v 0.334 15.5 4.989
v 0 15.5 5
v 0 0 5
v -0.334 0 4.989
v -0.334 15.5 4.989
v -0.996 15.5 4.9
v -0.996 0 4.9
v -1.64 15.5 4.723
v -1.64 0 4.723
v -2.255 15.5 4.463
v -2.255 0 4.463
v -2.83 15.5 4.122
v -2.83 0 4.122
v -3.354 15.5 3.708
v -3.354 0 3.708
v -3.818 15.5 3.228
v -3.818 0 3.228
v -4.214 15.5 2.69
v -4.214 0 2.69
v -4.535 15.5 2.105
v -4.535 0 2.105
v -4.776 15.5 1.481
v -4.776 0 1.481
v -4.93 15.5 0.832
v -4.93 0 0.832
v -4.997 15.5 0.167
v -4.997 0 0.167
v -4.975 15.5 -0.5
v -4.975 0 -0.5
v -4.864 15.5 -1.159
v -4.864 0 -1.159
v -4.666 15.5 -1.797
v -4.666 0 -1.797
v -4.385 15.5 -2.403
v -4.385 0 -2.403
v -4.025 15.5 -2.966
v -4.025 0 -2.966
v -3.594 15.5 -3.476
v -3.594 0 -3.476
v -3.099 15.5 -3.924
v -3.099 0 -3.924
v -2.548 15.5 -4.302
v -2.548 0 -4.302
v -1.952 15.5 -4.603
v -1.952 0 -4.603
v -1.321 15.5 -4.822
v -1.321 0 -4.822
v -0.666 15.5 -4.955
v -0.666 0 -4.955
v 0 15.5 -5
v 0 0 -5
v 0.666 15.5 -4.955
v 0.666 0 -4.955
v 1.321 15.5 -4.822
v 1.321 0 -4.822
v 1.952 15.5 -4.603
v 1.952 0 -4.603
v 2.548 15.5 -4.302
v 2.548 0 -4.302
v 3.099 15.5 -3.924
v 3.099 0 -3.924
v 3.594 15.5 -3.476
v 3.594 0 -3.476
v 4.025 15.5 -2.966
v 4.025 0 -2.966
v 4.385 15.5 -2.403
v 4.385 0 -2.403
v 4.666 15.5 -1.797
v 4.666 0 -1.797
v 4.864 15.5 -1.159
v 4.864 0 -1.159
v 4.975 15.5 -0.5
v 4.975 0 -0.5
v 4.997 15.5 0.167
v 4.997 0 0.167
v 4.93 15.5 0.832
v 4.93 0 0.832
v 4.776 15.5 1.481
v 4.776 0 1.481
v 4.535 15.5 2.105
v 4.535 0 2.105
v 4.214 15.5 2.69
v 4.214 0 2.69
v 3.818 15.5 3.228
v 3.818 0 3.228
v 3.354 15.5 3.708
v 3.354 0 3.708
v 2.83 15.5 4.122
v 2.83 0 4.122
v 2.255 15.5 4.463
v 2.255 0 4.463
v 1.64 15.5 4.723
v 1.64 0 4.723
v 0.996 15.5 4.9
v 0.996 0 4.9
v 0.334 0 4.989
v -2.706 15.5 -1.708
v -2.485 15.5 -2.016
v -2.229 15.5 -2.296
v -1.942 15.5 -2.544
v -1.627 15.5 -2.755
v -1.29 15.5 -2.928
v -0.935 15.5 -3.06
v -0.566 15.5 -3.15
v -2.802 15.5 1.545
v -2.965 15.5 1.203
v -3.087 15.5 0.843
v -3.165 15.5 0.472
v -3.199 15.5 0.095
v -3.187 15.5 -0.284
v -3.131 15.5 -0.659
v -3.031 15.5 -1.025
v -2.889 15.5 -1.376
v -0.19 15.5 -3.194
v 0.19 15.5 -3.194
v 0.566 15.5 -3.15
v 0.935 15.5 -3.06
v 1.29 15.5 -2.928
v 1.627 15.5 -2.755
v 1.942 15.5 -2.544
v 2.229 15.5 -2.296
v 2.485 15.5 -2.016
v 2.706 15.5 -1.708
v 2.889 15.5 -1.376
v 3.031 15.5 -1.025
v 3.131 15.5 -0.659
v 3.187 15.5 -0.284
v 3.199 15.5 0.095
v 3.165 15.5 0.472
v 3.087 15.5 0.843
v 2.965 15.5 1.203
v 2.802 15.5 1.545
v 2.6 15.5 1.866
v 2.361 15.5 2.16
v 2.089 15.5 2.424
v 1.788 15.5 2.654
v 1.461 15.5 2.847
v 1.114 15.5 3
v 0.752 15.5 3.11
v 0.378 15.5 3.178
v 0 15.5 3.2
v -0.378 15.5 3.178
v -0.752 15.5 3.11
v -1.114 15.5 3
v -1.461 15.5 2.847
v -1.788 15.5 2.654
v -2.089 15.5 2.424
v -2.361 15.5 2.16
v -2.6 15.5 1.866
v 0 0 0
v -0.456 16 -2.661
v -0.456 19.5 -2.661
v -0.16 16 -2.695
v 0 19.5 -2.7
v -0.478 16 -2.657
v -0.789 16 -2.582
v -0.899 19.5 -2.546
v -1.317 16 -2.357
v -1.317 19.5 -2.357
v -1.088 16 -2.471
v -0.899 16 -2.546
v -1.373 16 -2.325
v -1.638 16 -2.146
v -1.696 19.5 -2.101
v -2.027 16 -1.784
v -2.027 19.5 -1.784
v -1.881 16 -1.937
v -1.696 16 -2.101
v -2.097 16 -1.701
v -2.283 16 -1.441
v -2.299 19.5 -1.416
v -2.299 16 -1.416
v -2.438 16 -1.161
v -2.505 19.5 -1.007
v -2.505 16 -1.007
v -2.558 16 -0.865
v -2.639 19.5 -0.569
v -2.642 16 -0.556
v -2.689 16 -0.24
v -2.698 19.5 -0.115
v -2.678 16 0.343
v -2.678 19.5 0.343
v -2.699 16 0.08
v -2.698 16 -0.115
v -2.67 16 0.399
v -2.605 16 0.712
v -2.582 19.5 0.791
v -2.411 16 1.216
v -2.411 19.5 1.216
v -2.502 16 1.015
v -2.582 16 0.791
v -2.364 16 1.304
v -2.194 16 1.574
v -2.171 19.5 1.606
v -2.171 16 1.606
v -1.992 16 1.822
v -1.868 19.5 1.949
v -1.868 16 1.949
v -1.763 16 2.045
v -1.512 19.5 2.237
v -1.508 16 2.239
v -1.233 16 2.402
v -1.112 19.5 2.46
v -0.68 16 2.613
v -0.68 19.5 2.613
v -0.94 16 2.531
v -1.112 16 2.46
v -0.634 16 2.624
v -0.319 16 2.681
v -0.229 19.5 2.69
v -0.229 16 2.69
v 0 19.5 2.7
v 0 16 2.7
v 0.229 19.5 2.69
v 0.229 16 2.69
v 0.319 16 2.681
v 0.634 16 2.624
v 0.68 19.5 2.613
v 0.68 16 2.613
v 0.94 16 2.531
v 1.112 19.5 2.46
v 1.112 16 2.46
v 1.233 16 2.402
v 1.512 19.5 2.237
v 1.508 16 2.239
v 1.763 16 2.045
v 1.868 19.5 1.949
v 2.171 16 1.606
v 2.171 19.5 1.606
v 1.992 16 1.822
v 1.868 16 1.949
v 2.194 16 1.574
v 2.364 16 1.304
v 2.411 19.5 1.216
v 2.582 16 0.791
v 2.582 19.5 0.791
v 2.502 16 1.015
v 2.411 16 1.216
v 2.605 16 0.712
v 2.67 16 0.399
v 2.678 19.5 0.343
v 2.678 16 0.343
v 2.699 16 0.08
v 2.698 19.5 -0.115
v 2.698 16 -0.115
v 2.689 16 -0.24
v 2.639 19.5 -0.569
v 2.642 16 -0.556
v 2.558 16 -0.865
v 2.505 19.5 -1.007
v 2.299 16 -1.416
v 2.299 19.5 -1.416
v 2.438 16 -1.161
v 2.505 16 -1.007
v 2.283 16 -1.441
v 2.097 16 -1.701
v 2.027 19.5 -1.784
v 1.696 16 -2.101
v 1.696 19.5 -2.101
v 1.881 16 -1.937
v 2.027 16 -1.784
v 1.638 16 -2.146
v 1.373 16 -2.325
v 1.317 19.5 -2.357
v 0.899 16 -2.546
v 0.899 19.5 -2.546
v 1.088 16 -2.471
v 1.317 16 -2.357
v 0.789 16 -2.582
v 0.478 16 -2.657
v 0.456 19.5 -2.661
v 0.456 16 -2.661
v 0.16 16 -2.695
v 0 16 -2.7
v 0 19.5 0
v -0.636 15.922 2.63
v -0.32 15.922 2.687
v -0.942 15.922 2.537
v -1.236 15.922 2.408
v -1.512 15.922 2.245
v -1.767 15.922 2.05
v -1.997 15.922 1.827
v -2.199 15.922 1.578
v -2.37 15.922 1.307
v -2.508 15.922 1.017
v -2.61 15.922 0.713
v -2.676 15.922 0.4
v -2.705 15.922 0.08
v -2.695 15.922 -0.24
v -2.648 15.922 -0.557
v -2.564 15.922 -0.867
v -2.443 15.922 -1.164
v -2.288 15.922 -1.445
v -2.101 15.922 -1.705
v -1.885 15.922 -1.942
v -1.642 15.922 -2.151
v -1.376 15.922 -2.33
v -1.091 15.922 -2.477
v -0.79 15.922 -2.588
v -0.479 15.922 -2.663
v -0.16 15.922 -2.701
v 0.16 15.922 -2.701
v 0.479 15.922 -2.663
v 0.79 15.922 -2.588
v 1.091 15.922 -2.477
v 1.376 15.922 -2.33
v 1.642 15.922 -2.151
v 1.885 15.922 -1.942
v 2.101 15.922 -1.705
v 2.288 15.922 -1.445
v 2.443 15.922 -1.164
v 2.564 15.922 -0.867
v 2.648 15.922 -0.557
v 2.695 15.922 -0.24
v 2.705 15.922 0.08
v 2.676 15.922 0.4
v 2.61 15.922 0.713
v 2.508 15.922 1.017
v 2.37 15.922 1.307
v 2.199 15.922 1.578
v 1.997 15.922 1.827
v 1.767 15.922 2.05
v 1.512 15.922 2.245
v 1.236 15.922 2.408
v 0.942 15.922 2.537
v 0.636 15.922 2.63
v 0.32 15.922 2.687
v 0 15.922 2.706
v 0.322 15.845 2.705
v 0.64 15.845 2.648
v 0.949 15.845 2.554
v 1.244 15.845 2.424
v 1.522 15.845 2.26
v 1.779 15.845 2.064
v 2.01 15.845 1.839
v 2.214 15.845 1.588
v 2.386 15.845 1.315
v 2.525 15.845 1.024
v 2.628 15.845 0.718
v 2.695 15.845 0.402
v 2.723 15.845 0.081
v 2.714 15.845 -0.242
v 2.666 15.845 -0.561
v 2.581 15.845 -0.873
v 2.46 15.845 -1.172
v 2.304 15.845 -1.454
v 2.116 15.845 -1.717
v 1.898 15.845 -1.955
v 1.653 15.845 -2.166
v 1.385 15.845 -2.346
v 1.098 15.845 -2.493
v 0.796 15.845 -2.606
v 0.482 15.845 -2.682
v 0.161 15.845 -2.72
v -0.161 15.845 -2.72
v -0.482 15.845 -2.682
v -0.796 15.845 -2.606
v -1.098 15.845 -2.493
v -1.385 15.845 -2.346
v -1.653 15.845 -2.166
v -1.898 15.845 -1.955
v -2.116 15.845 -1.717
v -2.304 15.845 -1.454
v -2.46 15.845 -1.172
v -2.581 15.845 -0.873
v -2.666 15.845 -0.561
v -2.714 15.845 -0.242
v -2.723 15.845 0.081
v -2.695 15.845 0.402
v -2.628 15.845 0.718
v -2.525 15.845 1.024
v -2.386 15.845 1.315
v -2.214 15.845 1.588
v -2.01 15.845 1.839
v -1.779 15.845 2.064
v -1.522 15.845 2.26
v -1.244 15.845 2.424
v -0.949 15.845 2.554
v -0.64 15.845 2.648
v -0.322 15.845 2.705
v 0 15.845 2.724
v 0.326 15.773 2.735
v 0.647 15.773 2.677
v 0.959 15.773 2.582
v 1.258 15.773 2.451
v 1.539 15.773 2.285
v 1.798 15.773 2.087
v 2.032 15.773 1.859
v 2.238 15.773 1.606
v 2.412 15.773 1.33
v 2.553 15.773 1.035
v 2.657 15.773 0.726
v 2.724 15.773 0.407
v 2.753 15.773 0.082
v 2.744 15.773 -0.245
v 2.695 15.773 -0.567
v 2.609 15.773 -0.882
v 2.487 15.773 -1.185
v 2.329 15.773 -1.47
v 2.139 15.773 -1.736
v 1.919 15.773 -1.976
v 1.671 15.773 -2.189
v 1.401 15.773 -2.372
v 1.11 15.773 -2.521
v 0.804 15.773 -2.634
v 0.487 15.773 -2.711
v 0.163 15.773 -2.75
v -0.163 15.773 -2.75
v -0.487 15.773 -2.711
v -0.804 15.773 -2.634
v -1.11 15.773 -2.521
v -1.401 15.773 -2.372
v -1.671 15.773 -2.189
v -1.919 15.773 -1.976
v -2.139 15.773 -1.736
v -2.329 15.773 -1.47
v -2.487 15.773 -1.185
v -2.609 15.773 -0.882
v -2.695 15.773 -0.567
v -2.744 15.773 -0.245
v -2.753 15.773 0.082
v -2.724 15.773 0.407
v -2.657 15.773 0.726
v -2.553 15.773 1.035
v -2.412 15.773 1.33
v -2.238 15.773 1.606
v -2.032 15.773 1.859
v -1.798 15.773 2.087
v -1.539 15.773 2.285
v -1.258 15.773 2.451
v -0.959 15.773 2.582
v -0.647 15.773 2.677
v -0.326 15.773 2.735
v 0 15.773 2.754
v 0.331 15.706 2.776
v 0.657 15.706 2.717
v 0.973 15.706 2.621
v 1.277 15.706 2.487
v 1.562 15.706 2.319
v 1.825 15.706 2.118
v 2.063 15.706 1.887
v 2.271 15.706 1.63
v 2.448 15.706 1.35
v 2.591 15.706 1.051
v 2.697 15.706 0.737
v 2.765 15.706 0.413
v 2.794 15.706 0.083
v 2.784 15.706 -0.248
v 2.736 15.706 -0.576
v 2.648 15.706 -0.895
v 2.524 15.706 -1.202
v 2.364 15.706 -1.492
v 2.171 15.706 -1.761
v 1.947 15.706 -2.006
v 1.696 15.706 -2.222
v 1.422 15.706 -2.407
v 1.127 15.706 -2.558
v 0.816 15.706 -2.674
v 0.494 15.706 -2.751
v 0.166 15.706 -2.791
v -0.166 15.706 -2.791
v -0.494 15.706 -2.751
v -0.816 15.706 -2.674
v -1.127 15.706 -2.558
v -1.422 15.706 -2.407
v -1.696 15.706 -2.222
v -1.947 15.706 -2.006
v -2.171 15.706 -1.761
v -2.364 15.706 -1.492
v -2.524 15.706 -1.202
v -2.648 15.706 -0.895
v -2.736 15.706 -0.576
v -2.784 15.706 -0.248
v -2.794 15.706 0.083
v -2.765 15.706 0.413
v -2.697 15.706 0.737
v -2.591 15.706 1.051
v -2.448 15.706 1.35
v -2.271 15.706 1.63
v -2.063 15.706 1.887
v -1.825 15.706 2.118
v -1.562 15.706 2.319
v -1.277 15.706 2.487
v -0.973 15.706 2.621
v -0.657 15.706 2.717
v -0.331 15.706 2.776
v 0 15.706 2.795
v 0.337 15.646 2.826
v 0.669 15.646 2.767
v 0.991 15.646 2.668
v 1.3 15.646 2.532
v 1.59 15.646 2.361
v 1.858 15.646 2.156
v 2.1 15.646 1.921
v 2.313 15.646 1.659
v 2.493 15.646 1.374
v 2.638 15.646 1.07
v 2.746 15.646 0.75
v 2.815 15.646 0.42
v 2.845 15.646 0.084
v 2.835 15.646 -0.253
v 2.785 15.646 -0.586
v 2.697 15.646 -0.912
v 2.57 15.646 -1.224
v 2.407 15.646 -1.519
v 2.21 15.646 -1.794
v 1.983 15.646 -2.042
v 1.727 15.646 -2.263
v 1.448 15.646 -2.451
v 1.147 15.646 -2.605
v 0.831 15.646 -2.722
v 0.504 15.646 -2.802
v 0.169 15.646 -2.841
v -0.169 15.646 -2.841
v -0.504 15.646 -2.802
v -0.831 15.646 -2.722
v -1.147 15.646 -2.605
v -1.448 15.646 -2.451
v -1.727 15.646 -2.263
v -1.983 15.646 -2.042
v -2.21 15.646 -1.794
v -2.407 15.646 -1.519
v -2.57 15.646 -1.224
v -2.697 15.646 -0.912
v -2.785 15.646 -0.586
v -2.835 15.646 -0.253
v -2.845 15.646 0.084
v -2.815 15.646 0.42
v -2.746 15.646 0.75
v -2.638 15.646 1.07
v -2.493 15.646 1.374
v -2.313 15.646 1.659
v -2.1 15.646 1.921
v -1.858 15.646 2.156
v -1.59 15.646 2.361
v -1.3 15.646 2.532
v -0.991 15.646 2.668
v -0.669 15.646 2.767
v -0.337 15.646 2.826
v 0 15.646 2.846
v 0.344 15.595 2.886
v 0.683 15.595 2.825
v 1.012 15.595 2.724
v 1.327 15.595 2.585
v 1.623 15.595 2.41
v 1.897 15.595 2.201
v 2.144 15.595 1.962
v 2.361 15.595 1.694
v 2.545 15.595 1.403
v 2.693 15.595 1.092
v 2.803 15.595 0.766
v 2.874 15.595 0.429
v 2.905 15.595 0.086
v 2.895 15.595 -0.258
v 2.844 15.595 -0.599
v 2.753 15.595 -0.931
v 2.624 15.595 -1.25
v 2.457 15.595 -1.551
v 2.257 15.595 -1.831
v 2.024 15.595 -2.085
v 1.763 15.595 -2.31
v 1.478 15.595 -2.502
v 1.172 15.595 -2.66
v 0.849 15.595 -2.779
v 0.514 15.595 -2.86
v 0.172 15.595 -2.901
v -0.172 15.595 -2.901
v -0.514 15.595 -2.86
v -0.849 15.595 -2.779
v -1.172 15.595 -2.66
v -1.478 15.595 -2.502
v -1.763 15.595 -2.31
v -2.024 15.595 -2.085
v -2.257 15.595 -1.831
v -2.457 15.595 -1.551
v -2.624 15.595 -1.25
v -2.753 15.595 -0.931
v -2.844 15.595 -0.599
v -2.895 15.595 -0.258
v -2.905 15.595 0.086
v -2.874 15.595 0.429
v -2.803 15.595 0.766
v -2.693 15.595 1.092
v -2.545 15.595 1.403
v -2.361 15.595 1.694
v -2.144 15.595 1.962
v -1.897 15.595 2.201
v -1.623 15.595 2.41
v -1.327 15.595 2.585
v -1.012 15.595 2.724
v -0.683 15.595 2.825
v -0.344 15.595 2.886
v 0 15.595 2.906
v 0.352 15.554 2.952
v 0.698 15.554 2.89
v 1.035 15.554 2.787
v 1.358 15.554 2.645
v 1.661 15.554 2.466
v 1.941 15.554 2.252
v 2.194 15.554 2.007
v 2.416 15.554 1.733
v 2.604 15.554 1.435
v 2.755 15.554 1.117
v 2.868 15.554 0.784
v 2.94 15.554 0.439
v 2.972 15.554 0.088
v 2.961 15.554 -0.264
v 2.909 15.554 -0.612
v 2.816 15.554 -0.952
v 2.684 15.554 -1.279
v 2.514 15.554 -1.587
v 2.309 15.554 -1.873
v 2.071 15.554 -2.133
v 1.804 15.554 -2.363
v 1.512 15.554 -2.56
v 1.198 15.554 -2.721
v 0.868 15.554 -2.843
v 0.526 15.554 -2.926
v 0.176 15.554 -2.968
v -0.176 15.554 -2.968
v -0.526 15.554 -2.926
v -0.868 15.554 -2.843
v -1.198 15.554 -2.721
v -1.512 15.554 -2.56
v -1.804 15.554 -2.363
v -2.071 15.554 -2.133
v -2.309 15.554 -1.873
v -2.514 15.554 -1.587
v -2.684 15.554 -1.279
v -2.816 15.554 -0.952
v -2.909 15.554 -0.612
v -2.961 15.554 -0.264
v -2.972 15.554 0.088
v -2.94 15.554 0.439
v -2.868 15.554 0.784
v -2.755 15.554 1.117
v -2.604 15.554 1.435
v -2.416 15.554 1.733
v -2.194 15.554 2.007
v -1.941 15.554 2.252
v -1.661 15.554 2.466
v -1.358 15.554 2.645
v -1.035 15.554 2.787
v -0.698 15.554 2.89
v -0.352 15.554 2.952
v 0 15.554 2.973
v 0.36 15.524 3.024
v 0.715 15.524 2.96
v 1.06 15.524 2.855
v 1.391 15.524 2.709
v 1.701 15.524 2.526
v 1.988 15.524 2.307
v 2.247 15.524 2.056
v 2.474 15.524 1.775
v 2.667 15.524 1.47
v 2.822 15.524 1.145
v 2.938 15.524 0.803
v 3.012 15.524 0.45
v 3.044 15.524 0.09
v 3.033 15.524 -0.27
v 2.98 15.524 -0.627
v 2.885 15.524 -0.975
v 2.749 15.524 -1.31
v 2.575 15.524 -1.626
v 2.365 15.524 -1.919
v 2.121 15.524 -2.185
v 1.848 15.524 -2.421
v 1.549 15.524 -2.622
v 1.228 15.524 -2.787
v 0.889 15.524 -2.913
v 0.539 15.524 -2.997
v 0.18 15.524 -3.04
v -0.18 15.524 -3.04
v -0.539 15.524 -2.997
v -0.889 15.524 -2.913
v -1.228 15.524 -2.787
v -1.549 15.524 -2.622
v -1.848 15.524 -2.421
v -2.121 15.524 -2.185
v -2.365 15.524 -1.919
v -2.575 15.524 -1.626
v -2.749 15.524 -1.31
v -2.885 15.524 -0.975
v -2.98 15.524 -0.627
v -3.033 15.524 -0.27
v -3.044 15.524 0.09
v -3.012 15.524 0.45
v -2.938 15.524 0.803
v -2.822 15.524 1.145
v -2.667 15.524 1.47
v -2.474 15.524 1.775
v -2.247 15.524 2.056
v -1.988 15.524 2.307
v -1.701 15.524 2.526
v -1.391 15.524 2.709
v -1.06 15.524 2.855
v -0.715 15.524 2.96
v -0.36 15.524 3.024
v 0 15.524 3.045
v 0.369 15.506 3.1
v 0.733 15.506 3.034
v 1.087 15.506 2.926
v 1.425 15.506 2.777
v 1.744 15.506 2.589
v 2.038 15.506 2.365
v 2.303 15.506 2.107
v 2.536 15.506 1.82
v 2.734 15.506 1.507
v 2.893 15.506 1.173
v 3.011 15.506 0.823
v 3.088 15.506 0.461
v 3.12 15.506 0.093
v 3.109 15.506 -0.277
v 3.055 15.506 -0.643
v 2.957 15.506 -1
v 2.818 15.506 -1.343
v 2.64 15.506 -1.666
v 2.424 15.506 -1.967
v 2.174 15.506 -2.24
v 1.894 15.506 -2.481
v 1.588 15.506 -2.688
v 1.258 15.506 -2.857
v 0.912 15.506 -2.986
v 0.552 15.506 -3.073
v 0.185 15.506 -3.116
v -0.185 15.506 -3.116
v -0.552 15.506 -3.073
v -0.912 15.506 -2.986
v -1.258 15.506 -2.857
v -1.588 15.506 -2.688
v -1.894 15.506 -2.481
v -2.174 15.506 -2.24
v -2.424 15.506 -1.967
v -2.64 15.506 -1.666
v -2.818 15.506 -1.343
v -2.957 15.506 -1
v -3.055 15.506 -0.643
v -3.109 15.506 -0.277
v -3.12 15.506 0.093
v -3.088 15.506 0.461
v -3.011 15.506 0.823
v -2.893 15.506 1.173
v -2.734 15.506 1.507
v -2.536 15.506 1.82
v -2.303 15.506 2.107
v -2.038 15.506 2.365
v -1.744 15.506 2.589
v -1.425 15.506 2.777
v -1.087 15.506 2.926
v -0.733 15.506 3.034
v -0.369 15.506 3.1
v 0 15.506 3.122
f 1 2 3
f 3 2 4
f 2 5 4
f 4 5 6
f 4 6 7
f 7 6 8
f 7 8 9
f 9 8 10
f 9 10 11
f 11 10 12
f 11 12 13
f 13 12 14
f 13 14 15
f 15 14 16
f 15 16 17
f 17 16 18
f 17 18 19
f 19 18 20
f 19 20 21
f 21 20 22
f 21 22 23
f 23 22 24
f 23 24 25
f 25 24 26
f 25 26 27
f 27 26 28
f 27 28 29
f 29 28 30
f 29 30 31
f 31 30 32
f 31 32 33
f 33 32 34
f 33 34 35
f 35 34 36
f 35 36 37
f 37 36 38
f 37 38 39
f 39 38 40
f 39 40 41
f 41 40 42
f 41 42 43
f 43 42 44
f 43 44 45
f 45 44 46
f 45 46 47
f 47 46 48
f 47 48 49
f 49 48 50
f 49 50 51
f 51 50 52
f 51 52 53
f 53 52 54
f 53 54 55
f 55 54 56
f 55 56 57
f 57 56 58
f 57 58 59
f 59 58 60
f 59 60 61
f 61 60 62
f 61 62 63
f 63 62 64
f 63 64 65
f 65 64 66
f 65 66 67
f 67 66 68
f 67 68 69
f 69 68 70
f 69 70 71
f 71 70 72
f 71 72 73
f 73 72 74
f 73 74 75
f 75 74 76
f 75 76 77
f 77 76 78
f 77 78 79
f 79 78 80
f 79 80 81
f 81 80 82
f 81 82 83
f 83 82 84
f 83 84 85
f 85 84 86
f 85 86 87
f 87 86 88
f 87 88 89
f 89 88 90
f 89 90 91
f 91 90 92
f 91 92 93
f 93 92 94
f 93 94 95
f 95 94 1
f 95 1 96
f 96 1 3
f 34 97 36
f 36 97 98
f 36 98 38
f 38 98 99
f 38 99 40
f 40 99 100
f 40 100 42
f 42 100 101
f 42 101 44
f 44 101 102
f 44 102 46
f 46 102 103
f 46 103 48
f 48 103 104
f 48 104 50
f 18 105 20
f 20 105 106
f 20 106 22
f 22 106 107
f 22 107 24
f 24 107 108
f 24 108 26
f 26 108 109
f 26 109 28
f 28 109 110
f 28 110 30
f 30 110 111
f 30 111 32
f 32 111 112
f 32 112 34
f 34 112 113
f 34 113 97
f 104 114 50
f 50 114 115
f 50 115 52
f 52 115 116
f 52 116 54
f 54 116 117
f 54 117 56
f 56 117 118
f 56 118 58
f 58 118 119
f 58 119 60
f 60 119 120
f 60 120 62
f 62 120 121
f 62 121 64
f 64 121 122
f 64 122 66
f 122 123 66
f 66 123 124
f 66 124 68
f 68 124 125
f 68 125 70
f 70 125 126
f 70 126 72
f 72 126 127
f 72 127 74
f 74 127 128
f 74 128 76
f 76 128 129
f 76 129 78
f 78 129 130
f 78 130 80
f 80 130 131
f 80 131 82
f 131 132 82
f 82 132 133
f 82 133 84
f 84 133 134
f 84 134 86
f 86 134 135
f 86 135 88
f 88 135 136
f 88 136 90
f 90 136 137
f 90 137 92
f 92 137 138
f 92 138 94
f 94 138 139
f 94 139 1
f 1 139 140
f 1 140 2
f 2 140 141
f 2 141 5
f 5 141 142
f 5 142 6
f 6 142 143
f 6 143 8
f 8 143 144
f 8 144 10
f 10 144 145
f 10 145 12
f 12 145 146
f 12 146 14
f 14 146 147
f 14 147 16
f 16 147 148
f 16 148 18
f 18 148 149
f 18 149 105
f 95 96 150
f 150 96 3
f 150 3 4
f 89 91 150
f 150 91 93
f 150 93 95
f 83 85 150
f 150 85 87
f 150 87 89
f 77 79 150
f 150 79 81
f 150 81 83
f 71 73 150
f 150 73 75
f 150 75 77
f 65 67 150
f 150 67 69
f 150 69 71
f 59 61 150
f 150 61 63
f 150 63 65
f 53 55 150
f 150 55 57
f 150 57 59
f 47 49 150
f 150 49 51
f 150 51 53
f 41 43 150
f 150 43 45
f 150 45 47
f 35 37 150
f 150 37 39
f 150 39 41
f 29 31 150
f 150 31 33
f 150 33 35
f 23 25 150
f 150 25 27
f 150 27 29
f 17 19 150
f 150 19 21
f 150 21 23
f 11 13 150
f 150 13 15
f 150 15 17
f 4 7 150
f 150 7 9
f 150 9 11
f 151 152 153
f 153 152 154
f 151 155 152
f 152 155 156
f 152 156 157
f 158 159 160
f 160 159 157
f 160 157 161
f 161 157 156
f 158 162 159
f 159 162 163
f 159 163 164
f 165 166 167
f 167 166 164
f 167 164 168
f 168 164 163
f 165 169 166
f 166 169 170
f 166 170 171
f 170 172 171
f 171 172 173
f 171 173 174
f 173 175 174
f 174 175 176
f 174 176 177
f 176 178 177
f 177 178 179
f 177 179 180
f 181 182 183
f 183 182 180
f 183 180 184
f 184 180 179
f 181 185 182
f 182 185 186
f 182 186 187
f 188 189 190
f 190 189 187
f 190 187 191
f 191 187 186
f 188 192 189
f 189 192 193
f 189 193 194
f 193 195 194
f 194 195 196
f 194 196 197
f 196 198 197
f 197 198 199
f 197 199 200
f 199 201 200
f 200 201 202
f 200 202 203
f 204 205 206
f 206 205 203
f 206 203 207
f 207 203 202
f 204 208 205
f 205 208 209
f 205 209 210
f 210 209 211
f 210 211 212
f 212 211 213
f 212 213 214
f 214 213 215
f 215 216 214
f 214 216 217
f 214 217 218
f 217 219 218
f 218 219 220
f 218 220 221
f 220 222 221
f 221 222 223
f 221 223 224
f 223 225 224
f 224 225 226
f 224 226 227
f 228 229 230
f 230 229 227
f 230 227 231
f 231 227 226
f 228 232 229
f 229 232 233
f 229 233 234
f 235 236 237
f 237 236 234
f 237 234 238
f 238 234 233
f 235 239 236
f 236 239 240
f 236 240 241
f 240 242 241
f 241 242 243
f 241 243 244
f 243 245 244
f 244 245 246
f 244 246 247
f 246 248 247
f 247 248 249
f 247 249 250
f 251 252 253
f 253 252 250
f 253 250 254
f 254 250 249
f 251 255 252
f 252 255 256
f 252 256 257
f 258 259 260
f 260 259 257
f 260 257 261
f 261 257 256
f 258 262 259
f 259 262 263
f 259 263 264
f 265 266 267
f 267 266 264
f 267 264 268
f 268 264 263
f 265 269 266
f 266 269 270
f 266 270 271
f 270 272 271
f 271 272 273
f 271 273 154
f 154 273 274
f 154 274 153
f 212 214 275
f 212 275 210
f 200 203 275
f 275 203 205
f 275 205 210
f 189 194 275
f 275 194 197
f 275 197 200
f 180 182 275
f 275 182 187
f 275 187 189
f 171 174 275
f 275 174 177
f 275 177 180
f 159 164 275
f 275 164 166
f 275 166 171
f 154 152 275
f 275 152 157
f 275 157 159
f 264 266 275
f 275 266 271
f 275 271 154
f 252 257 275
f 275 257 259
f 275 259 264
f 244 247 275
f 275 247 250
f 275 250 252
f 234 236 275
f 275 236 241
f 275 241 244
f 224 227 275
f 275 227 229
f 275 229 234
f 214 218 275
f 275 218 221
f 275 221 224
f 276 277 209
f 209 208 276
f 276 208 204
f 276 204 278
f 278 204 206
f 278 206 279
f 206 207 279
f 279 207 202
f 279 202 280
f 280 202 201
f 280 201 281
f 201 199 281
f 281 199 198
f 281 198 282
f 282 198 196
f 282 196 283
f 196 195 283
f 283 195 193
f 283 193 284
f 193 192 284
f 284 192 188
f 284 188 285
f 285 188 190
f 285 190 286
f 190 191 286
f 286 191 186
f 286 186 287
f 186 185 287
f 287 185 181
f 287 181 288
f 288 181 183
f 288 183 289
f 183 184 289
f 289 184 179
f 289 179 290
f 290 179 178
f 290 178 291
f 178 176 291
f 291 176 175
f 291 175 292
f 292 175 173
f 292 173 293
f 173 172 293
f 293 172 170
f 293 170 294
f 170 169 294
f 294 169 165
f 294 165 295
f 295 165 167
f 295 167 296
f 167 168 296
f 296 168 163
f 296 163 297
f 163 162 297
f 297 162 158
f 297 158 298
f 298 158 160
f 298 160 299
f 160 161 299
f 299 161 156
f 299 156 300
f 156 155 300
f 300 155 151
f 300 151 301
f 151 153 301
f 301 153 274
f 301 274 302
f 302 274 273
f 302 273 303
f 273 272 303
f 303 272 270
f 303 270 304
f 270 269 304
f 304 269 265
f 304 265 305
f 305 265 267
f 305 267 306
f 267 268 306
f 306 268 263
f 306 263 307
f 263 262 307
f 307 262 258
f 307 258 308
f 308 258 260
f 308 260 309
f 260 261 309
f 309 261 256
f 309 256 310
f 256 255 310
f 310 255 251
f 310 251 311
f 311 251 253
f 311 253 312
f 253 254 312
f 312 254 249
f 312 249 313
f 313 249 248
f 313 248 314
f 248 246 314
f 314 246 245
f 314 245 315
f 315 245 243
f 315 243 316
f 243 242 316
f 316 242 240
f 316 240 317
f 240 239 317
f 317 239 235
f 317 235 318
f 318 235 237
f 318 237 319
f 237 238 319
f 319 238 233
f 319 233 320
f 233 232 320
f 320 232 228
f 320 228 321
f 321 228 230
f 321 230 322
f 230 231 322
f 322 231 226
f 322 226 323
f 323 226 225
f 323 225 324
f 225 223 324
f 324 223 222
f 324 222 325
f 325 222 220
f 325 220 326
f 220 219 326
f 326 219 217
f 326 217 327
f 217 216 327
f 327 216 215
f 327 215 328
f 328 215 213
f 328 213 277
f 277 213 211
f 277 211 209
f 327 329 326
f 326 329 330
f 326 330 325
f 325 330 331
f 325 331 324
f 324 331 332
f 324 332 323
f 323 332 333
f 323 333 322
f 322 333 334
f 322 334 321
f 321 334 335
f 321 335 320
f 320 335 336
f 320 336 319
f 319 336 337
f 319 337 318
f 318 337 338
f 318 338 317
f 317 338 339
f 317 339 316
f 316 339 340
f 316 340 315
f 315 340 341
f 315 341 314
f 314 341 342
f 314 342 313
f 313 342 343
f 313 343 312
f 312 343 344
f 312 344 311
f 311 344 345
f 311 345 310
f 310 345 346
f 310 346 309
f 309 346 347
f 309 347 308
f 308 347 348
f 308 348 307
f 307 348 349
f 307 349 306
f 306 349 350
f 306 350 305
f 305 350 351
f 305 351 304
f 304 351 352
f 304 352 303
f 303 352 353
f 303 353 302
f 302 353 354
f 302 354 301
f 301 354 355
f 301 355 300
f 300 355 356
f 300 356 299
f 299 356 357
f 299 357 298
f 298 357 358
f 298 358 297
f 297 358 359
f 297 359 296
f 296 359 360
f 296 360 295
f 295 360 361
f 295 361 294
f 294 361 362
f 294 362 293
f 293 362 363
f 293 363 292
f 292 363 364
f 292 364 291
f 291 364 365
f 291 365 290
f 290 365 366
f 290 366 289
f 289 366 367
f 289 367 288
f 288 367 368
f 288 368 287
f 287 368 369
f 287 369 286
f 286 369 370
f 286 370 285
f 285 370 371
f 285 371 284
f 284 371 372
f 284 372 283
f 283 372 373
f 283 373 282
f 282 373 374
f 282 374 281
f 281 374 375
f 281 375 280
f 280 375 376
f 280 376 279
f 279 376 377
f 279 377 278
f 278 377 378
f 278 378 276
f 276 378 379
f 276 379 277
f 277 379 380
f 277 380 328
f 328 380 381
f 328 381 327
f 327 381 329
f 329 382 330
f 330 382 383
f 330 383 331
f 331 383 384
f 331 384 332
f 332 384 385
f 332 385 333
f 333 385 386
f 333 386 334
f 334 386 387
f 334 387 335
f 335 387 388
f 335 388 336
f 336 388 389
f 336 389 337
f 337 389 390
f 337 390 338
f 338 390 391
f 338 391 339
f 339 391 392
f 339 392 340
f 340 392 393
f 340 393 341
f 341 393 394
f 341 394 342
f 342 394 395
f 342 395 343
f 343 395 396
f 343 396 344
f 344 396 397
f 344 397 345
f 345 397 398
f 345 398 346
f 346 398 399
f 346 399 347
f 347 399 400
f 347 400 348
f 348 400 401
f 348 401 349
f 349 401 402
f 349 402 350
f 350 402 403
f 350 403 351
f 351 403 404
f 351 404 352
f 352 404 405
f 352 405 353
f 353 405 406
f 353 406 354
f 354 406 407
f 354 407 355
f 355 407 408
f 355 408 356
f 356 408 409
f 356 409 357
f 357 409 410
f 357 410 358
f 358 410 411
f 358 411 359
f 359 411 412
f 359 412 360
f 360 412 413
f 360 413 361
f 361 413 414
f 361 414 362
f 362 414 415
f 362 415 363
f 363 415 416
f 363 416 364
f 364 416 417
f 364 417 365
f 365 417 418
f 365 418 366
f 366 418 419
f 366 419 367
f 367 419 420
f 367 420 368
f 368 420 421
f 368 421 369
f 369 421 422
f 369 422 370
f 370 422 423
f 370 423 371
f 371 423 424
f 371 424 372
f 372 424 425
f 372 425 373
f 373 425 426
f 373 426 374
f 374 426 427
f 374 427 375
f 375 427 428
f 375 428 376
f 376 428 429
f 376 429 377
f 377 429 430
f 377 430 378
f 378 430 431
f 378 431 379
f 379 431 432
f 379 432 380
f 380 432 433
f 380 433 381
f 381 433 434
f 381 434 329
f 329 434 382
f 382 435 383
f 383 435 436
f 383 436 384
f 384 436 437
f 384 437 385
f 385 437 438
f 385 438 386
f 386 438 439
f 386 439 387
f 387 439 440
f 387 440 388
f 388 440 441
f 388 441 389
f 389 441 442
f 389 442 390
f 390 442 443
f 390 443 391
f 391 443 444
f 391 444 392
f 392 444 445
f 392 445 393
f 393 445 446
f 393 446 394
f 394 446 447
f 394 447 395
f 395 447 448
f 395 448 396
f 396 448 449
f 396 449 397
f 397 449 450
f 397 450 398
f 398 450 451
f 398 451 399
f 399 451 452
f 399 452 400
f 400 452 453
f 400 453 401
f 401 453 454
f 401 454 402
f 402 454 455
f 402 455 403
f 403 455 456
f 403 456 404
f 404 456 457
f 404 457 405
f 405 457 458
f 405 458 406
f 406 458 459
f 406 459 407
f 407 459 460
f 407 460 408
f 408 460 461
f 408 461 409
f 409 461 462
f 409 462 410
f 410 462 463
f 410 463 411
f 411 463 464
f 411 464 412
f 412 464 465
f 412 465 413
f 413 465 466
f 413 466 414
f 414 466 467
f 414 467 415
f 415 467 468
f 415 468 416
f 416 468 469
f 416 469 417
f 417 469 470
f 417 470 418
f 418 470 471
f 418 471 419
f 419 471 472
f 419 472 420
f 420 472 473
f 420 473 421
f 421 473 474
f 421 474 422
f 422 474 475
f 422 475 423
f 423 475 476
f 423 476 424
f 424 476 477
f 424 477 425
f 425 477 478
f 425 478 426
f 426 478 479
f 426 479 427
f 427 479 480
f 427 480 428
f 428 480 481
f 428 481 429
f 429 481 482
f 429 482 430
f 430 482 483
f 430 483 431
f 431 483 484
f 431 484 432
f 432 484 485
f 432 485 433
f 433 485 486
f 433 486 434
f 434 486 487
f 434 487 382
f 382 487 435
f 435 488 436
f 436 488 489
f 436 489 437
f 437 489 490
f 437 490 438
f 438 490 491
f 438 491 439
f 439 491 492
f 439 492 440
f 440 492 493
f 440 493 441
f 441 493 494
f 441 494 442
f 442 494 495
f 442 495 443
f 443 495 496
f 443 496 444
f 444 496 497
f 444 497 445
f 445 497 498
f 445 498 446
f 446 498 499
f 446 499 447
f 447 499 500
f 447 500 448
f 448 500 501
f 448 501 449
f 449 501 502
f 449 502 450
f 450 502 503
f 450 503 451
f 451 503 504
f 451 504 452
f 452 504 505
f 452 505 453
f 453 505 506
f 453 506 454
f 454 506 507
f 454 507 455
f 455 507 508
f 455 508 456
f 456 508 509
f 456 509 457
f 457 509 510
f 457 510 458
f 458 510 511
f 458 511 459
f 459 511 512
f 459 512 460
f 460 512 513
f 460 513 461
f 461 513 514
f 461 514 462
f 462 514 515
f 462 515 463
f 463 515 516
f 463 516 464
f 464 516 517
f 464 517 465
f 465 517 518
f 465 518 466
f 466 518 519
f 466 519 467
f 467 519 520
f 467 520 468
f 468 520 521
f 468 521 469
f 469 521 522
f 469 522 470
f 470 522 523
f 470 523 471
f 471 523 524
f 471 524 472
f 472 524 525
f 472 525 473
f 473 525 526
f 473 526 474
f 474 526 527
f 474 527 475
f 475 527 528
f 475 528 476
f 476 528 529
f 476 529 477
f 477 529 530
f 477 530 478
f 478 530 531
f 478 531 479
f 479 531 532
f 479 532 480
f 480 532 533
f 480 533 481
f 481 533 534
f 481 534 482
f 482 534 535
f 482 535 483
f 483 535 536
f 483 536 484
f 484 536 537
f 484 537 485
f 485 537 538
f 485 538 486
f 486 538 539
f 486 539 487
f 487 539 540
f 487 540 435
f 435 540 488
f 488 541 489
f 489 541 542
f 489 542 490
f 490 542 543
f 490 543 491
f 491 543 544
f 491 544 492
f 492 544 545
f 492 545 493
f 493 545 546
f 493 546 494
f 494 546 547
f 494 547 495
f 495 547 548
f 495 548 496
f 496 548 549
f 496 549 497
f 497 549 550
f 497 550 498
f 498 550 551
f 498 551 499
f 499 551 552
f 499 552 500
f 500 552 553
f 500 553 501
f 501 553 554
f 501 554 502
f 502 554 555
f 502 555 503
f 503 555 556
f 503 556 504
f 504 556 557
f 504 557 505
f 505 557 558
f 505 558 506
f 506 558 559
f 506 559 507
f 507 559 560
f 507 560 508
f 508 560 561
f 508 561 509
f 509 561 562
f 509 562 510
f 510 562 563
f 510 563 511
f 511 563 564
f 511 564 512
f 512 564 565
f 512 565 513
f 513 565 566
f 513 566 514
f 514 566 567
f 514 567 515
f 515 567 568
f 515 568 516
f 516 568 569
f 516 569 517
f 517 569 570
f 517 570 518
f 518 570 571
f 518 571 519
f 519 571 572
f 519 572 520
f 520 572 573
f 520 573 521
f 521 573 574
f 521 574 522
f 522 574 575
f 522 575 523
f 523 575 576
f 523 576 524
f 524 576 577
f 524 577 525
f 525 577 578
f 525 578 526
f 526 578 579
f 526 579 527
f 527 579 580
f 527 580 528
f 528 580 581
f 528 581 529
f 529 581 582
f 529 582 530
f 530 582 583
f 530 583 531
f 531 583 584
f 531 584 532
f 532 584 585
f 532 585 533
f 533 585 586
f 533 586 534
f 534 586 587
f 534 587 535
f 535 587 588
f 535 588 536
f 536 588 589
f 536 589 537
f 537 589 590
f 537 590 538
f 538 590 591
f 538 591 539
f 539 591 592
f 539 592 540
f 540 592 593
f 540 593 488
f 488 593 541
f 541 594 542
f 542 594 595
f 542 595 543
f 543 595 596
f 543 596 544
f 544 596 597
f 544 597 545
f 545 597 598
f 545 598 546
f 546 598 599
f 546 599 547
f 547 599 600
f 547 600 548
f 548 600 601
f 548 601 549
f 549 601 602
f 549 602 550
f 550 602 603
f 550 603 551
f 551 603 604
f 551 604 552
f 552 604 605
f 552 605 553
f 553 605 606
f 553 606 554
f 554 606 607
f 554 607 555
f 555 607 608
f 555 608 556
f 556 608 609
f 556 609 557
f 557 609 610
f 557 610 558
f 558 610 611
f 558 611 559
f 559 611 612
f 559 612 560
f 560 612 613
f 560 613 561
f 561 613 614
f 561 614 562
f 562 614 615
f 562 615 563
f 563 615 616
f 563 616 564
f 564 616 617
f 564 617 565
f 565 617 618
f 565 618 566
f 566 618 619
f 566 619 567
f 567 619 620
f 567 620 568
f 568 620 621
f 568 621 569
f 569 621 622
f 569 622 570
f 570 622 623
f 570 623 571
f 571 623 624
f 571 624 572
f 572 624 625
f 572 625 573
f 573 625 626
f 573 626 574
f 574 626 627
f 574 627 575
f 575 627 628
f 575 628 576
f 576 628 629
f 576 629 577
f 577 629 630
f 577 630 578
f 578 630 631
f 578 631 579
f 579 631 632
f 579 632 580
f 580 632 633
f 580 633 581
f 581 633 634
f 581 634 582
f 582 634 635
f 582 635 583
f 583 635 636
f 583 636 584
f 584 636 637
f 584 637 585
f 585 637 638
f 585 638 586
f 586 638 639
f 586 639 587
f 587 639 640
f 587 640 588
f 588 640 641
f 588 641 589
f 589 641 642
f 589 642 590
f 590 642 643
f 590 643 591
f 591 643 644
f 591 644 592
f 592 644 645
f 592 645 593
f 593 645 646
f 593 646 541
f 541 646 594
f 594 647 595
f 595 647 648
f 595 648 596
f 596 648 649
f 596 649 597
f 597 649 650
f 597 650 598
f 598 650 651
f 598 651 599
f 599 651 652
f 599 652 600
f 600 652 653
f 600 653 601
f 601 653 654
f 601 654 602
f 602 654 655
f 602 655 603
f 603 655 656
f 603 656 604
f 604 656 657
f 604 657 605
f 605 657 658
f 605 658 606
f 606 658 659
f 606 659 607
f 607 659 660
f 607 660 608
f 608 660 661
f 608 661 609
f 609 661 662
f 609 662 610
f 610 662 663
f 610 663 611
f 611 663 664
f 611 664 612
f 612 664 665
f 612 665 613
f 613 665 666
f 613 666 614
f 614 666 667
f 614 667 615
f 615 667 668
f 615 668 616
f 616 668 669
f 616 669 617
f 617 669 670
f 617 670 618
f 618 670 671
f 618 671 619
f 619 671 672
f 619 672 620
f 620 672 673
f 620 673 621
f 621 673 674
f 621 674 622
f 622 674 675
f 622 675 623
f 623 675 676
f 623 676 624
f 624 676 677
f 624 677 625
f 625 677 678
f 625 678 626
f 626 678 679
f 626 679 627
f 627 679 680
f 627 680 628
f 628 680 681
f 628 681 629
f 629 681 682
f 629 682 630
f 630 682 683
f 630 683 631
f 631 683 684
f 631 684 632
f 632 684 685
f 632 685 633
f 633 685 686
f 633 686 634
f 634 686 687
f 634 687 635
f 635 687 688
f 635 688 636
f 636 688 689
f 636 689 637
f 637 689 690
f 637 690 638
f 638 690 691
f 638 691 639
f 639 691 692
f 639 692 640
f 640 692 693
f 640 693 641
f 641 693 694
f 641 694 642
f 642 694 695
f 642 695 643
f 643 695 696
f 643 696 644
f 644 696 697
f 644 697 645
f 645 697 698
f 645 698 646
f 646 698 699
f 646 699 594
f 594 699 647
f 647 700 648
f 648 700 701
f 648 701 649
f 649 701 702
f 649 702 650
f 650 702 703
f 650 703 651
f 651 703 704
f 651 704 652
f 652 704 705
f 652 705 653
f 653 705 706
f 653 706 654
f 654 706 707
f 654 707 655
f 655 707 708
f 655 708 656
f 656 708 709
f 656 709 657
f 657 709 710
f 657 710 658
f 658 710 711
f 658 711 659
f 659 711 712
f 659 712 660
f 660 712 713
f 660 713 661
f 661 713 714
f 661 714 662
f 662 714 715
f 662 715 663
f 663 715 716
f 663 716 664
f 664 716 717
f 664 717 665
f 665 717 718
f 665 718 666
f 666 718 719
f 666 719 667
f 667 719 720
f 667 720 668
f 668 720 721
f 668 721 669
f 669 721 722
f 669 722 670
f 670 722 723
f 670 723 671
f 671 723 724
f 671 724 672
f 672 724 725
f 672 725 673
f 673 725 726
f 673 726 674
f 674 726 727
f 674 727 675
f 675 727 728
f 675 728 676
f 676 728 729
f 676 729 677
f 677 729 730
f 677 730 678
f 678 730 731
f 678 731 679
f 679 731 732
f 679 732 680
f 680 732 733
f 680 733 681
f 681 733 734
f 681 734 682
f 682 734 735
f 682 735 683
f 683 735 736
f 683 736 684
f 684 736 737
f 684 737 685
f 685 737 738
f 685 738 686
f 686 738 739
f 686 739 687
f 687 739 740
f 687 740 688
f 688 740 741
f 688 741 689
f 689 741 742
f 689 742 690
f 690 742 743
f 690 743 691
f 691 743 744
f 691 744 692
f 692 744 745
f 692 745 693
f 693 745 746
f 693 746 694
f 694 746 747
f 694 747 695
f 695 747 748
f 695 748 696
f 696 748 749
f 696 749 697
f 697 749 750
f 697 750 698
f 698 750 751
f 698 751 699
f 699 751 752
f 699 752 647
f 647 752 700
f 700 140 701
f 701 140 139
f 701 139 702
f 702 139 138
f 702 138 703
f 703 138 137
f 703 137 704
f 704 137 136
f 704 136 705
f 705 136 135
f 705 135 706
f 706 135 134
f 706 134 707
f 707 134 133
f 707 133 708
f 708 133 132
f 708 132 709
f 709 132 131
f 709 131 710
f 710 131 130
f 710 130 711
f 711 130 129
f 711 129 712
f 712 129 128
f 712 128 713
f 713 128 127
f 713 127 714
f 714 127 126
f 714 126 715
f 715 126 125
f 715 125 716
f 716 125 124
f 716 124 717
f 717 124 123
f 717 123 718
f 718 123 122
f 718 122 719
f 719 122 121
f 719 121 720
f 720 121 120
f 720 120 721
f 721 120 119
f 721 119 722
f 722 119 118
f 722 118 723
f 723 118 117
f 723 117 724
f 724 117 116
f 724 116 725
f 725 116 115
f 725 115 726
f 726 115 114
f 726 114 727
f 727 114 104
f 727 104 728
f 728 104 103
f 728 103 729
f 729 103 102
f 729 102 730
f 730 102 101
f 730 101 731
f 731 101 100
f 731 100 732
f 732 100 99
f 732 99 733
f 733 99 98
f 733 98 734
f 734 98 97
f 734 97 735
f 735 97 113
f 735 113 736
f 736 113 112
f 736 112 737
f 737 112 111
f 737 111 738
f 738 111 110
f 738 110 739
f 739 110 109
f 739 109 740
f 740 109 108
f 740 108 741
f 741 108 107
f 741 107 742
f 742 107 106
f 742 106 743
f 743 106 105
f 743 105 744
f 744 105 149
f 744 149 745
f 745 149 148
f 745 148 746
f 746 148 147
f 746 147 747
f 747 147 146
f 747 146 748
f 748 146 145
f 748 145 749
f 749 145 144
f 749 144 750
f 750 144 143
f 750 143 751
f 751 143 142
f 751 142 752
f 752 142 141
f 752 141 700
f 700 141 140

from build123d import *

# Parameters (mm, degrees)
SKETCH1_R           = 5
SKETCH1_R_2         = 2.7
BOSS_EXTRUDE1_DEPTH = 15.5
BOSS_EXTRUDE2_START = 15.5
SKETCH1_4_R         = 2.7
BOSS_EXTRUDE2_DEPTH = 4
FILLET1_R           = 0.5


with BuildPart() as part:
    # Sketch1 → Boss-Extrude1 (new body)
    # profile 1 of 2: a face of its own
    with BuildSketch(Plane(origin=(0, 0, 0), x_dir=(1, 0, 0), z_dir=(0, 1, 0))):
        with Locations(Location((0, 0, 0), (0, 0, 270))):
            Circle(SKETCH1_R)
        Circle(SKETCH1_R_2, mode=Mode.SUBTRACT)
    # profile 2 of 2: a face of its own
    with BuildSketch(Plane(origin=(0, 0, 0), x_dir=(1, 0, 0), z_dir=(0, 1, 0))):
        Circle(SKETCH1_R_2)
    extrude(amount=BOSS_EXTRUDE1_DEPTH)

    # Sketch1<4> → Boss-Extrude2 (add)
    with BuildSketch(Plane(origin=(0, 0, 0), x_dir=(1, 0, 0), z_dir=(0, 1, 0)).offset(BOSS_EXTRUDE2_START)):
        with Locations(Location((0, 0, 0), (0, 0, 270))):
            Circle(SKETCH1_4_R)
    extrude(amount=BOSS_EXTRUDE2_DEPTH)

    # Fillet1
    fillet1_edges = [part.edges().sort_by_distance(p)[0] for p in [
        (0, 15.5, -2.7),
    ]]
    fillet(fillet1_edges, radius=FILLET1_R)


solid = part.part
